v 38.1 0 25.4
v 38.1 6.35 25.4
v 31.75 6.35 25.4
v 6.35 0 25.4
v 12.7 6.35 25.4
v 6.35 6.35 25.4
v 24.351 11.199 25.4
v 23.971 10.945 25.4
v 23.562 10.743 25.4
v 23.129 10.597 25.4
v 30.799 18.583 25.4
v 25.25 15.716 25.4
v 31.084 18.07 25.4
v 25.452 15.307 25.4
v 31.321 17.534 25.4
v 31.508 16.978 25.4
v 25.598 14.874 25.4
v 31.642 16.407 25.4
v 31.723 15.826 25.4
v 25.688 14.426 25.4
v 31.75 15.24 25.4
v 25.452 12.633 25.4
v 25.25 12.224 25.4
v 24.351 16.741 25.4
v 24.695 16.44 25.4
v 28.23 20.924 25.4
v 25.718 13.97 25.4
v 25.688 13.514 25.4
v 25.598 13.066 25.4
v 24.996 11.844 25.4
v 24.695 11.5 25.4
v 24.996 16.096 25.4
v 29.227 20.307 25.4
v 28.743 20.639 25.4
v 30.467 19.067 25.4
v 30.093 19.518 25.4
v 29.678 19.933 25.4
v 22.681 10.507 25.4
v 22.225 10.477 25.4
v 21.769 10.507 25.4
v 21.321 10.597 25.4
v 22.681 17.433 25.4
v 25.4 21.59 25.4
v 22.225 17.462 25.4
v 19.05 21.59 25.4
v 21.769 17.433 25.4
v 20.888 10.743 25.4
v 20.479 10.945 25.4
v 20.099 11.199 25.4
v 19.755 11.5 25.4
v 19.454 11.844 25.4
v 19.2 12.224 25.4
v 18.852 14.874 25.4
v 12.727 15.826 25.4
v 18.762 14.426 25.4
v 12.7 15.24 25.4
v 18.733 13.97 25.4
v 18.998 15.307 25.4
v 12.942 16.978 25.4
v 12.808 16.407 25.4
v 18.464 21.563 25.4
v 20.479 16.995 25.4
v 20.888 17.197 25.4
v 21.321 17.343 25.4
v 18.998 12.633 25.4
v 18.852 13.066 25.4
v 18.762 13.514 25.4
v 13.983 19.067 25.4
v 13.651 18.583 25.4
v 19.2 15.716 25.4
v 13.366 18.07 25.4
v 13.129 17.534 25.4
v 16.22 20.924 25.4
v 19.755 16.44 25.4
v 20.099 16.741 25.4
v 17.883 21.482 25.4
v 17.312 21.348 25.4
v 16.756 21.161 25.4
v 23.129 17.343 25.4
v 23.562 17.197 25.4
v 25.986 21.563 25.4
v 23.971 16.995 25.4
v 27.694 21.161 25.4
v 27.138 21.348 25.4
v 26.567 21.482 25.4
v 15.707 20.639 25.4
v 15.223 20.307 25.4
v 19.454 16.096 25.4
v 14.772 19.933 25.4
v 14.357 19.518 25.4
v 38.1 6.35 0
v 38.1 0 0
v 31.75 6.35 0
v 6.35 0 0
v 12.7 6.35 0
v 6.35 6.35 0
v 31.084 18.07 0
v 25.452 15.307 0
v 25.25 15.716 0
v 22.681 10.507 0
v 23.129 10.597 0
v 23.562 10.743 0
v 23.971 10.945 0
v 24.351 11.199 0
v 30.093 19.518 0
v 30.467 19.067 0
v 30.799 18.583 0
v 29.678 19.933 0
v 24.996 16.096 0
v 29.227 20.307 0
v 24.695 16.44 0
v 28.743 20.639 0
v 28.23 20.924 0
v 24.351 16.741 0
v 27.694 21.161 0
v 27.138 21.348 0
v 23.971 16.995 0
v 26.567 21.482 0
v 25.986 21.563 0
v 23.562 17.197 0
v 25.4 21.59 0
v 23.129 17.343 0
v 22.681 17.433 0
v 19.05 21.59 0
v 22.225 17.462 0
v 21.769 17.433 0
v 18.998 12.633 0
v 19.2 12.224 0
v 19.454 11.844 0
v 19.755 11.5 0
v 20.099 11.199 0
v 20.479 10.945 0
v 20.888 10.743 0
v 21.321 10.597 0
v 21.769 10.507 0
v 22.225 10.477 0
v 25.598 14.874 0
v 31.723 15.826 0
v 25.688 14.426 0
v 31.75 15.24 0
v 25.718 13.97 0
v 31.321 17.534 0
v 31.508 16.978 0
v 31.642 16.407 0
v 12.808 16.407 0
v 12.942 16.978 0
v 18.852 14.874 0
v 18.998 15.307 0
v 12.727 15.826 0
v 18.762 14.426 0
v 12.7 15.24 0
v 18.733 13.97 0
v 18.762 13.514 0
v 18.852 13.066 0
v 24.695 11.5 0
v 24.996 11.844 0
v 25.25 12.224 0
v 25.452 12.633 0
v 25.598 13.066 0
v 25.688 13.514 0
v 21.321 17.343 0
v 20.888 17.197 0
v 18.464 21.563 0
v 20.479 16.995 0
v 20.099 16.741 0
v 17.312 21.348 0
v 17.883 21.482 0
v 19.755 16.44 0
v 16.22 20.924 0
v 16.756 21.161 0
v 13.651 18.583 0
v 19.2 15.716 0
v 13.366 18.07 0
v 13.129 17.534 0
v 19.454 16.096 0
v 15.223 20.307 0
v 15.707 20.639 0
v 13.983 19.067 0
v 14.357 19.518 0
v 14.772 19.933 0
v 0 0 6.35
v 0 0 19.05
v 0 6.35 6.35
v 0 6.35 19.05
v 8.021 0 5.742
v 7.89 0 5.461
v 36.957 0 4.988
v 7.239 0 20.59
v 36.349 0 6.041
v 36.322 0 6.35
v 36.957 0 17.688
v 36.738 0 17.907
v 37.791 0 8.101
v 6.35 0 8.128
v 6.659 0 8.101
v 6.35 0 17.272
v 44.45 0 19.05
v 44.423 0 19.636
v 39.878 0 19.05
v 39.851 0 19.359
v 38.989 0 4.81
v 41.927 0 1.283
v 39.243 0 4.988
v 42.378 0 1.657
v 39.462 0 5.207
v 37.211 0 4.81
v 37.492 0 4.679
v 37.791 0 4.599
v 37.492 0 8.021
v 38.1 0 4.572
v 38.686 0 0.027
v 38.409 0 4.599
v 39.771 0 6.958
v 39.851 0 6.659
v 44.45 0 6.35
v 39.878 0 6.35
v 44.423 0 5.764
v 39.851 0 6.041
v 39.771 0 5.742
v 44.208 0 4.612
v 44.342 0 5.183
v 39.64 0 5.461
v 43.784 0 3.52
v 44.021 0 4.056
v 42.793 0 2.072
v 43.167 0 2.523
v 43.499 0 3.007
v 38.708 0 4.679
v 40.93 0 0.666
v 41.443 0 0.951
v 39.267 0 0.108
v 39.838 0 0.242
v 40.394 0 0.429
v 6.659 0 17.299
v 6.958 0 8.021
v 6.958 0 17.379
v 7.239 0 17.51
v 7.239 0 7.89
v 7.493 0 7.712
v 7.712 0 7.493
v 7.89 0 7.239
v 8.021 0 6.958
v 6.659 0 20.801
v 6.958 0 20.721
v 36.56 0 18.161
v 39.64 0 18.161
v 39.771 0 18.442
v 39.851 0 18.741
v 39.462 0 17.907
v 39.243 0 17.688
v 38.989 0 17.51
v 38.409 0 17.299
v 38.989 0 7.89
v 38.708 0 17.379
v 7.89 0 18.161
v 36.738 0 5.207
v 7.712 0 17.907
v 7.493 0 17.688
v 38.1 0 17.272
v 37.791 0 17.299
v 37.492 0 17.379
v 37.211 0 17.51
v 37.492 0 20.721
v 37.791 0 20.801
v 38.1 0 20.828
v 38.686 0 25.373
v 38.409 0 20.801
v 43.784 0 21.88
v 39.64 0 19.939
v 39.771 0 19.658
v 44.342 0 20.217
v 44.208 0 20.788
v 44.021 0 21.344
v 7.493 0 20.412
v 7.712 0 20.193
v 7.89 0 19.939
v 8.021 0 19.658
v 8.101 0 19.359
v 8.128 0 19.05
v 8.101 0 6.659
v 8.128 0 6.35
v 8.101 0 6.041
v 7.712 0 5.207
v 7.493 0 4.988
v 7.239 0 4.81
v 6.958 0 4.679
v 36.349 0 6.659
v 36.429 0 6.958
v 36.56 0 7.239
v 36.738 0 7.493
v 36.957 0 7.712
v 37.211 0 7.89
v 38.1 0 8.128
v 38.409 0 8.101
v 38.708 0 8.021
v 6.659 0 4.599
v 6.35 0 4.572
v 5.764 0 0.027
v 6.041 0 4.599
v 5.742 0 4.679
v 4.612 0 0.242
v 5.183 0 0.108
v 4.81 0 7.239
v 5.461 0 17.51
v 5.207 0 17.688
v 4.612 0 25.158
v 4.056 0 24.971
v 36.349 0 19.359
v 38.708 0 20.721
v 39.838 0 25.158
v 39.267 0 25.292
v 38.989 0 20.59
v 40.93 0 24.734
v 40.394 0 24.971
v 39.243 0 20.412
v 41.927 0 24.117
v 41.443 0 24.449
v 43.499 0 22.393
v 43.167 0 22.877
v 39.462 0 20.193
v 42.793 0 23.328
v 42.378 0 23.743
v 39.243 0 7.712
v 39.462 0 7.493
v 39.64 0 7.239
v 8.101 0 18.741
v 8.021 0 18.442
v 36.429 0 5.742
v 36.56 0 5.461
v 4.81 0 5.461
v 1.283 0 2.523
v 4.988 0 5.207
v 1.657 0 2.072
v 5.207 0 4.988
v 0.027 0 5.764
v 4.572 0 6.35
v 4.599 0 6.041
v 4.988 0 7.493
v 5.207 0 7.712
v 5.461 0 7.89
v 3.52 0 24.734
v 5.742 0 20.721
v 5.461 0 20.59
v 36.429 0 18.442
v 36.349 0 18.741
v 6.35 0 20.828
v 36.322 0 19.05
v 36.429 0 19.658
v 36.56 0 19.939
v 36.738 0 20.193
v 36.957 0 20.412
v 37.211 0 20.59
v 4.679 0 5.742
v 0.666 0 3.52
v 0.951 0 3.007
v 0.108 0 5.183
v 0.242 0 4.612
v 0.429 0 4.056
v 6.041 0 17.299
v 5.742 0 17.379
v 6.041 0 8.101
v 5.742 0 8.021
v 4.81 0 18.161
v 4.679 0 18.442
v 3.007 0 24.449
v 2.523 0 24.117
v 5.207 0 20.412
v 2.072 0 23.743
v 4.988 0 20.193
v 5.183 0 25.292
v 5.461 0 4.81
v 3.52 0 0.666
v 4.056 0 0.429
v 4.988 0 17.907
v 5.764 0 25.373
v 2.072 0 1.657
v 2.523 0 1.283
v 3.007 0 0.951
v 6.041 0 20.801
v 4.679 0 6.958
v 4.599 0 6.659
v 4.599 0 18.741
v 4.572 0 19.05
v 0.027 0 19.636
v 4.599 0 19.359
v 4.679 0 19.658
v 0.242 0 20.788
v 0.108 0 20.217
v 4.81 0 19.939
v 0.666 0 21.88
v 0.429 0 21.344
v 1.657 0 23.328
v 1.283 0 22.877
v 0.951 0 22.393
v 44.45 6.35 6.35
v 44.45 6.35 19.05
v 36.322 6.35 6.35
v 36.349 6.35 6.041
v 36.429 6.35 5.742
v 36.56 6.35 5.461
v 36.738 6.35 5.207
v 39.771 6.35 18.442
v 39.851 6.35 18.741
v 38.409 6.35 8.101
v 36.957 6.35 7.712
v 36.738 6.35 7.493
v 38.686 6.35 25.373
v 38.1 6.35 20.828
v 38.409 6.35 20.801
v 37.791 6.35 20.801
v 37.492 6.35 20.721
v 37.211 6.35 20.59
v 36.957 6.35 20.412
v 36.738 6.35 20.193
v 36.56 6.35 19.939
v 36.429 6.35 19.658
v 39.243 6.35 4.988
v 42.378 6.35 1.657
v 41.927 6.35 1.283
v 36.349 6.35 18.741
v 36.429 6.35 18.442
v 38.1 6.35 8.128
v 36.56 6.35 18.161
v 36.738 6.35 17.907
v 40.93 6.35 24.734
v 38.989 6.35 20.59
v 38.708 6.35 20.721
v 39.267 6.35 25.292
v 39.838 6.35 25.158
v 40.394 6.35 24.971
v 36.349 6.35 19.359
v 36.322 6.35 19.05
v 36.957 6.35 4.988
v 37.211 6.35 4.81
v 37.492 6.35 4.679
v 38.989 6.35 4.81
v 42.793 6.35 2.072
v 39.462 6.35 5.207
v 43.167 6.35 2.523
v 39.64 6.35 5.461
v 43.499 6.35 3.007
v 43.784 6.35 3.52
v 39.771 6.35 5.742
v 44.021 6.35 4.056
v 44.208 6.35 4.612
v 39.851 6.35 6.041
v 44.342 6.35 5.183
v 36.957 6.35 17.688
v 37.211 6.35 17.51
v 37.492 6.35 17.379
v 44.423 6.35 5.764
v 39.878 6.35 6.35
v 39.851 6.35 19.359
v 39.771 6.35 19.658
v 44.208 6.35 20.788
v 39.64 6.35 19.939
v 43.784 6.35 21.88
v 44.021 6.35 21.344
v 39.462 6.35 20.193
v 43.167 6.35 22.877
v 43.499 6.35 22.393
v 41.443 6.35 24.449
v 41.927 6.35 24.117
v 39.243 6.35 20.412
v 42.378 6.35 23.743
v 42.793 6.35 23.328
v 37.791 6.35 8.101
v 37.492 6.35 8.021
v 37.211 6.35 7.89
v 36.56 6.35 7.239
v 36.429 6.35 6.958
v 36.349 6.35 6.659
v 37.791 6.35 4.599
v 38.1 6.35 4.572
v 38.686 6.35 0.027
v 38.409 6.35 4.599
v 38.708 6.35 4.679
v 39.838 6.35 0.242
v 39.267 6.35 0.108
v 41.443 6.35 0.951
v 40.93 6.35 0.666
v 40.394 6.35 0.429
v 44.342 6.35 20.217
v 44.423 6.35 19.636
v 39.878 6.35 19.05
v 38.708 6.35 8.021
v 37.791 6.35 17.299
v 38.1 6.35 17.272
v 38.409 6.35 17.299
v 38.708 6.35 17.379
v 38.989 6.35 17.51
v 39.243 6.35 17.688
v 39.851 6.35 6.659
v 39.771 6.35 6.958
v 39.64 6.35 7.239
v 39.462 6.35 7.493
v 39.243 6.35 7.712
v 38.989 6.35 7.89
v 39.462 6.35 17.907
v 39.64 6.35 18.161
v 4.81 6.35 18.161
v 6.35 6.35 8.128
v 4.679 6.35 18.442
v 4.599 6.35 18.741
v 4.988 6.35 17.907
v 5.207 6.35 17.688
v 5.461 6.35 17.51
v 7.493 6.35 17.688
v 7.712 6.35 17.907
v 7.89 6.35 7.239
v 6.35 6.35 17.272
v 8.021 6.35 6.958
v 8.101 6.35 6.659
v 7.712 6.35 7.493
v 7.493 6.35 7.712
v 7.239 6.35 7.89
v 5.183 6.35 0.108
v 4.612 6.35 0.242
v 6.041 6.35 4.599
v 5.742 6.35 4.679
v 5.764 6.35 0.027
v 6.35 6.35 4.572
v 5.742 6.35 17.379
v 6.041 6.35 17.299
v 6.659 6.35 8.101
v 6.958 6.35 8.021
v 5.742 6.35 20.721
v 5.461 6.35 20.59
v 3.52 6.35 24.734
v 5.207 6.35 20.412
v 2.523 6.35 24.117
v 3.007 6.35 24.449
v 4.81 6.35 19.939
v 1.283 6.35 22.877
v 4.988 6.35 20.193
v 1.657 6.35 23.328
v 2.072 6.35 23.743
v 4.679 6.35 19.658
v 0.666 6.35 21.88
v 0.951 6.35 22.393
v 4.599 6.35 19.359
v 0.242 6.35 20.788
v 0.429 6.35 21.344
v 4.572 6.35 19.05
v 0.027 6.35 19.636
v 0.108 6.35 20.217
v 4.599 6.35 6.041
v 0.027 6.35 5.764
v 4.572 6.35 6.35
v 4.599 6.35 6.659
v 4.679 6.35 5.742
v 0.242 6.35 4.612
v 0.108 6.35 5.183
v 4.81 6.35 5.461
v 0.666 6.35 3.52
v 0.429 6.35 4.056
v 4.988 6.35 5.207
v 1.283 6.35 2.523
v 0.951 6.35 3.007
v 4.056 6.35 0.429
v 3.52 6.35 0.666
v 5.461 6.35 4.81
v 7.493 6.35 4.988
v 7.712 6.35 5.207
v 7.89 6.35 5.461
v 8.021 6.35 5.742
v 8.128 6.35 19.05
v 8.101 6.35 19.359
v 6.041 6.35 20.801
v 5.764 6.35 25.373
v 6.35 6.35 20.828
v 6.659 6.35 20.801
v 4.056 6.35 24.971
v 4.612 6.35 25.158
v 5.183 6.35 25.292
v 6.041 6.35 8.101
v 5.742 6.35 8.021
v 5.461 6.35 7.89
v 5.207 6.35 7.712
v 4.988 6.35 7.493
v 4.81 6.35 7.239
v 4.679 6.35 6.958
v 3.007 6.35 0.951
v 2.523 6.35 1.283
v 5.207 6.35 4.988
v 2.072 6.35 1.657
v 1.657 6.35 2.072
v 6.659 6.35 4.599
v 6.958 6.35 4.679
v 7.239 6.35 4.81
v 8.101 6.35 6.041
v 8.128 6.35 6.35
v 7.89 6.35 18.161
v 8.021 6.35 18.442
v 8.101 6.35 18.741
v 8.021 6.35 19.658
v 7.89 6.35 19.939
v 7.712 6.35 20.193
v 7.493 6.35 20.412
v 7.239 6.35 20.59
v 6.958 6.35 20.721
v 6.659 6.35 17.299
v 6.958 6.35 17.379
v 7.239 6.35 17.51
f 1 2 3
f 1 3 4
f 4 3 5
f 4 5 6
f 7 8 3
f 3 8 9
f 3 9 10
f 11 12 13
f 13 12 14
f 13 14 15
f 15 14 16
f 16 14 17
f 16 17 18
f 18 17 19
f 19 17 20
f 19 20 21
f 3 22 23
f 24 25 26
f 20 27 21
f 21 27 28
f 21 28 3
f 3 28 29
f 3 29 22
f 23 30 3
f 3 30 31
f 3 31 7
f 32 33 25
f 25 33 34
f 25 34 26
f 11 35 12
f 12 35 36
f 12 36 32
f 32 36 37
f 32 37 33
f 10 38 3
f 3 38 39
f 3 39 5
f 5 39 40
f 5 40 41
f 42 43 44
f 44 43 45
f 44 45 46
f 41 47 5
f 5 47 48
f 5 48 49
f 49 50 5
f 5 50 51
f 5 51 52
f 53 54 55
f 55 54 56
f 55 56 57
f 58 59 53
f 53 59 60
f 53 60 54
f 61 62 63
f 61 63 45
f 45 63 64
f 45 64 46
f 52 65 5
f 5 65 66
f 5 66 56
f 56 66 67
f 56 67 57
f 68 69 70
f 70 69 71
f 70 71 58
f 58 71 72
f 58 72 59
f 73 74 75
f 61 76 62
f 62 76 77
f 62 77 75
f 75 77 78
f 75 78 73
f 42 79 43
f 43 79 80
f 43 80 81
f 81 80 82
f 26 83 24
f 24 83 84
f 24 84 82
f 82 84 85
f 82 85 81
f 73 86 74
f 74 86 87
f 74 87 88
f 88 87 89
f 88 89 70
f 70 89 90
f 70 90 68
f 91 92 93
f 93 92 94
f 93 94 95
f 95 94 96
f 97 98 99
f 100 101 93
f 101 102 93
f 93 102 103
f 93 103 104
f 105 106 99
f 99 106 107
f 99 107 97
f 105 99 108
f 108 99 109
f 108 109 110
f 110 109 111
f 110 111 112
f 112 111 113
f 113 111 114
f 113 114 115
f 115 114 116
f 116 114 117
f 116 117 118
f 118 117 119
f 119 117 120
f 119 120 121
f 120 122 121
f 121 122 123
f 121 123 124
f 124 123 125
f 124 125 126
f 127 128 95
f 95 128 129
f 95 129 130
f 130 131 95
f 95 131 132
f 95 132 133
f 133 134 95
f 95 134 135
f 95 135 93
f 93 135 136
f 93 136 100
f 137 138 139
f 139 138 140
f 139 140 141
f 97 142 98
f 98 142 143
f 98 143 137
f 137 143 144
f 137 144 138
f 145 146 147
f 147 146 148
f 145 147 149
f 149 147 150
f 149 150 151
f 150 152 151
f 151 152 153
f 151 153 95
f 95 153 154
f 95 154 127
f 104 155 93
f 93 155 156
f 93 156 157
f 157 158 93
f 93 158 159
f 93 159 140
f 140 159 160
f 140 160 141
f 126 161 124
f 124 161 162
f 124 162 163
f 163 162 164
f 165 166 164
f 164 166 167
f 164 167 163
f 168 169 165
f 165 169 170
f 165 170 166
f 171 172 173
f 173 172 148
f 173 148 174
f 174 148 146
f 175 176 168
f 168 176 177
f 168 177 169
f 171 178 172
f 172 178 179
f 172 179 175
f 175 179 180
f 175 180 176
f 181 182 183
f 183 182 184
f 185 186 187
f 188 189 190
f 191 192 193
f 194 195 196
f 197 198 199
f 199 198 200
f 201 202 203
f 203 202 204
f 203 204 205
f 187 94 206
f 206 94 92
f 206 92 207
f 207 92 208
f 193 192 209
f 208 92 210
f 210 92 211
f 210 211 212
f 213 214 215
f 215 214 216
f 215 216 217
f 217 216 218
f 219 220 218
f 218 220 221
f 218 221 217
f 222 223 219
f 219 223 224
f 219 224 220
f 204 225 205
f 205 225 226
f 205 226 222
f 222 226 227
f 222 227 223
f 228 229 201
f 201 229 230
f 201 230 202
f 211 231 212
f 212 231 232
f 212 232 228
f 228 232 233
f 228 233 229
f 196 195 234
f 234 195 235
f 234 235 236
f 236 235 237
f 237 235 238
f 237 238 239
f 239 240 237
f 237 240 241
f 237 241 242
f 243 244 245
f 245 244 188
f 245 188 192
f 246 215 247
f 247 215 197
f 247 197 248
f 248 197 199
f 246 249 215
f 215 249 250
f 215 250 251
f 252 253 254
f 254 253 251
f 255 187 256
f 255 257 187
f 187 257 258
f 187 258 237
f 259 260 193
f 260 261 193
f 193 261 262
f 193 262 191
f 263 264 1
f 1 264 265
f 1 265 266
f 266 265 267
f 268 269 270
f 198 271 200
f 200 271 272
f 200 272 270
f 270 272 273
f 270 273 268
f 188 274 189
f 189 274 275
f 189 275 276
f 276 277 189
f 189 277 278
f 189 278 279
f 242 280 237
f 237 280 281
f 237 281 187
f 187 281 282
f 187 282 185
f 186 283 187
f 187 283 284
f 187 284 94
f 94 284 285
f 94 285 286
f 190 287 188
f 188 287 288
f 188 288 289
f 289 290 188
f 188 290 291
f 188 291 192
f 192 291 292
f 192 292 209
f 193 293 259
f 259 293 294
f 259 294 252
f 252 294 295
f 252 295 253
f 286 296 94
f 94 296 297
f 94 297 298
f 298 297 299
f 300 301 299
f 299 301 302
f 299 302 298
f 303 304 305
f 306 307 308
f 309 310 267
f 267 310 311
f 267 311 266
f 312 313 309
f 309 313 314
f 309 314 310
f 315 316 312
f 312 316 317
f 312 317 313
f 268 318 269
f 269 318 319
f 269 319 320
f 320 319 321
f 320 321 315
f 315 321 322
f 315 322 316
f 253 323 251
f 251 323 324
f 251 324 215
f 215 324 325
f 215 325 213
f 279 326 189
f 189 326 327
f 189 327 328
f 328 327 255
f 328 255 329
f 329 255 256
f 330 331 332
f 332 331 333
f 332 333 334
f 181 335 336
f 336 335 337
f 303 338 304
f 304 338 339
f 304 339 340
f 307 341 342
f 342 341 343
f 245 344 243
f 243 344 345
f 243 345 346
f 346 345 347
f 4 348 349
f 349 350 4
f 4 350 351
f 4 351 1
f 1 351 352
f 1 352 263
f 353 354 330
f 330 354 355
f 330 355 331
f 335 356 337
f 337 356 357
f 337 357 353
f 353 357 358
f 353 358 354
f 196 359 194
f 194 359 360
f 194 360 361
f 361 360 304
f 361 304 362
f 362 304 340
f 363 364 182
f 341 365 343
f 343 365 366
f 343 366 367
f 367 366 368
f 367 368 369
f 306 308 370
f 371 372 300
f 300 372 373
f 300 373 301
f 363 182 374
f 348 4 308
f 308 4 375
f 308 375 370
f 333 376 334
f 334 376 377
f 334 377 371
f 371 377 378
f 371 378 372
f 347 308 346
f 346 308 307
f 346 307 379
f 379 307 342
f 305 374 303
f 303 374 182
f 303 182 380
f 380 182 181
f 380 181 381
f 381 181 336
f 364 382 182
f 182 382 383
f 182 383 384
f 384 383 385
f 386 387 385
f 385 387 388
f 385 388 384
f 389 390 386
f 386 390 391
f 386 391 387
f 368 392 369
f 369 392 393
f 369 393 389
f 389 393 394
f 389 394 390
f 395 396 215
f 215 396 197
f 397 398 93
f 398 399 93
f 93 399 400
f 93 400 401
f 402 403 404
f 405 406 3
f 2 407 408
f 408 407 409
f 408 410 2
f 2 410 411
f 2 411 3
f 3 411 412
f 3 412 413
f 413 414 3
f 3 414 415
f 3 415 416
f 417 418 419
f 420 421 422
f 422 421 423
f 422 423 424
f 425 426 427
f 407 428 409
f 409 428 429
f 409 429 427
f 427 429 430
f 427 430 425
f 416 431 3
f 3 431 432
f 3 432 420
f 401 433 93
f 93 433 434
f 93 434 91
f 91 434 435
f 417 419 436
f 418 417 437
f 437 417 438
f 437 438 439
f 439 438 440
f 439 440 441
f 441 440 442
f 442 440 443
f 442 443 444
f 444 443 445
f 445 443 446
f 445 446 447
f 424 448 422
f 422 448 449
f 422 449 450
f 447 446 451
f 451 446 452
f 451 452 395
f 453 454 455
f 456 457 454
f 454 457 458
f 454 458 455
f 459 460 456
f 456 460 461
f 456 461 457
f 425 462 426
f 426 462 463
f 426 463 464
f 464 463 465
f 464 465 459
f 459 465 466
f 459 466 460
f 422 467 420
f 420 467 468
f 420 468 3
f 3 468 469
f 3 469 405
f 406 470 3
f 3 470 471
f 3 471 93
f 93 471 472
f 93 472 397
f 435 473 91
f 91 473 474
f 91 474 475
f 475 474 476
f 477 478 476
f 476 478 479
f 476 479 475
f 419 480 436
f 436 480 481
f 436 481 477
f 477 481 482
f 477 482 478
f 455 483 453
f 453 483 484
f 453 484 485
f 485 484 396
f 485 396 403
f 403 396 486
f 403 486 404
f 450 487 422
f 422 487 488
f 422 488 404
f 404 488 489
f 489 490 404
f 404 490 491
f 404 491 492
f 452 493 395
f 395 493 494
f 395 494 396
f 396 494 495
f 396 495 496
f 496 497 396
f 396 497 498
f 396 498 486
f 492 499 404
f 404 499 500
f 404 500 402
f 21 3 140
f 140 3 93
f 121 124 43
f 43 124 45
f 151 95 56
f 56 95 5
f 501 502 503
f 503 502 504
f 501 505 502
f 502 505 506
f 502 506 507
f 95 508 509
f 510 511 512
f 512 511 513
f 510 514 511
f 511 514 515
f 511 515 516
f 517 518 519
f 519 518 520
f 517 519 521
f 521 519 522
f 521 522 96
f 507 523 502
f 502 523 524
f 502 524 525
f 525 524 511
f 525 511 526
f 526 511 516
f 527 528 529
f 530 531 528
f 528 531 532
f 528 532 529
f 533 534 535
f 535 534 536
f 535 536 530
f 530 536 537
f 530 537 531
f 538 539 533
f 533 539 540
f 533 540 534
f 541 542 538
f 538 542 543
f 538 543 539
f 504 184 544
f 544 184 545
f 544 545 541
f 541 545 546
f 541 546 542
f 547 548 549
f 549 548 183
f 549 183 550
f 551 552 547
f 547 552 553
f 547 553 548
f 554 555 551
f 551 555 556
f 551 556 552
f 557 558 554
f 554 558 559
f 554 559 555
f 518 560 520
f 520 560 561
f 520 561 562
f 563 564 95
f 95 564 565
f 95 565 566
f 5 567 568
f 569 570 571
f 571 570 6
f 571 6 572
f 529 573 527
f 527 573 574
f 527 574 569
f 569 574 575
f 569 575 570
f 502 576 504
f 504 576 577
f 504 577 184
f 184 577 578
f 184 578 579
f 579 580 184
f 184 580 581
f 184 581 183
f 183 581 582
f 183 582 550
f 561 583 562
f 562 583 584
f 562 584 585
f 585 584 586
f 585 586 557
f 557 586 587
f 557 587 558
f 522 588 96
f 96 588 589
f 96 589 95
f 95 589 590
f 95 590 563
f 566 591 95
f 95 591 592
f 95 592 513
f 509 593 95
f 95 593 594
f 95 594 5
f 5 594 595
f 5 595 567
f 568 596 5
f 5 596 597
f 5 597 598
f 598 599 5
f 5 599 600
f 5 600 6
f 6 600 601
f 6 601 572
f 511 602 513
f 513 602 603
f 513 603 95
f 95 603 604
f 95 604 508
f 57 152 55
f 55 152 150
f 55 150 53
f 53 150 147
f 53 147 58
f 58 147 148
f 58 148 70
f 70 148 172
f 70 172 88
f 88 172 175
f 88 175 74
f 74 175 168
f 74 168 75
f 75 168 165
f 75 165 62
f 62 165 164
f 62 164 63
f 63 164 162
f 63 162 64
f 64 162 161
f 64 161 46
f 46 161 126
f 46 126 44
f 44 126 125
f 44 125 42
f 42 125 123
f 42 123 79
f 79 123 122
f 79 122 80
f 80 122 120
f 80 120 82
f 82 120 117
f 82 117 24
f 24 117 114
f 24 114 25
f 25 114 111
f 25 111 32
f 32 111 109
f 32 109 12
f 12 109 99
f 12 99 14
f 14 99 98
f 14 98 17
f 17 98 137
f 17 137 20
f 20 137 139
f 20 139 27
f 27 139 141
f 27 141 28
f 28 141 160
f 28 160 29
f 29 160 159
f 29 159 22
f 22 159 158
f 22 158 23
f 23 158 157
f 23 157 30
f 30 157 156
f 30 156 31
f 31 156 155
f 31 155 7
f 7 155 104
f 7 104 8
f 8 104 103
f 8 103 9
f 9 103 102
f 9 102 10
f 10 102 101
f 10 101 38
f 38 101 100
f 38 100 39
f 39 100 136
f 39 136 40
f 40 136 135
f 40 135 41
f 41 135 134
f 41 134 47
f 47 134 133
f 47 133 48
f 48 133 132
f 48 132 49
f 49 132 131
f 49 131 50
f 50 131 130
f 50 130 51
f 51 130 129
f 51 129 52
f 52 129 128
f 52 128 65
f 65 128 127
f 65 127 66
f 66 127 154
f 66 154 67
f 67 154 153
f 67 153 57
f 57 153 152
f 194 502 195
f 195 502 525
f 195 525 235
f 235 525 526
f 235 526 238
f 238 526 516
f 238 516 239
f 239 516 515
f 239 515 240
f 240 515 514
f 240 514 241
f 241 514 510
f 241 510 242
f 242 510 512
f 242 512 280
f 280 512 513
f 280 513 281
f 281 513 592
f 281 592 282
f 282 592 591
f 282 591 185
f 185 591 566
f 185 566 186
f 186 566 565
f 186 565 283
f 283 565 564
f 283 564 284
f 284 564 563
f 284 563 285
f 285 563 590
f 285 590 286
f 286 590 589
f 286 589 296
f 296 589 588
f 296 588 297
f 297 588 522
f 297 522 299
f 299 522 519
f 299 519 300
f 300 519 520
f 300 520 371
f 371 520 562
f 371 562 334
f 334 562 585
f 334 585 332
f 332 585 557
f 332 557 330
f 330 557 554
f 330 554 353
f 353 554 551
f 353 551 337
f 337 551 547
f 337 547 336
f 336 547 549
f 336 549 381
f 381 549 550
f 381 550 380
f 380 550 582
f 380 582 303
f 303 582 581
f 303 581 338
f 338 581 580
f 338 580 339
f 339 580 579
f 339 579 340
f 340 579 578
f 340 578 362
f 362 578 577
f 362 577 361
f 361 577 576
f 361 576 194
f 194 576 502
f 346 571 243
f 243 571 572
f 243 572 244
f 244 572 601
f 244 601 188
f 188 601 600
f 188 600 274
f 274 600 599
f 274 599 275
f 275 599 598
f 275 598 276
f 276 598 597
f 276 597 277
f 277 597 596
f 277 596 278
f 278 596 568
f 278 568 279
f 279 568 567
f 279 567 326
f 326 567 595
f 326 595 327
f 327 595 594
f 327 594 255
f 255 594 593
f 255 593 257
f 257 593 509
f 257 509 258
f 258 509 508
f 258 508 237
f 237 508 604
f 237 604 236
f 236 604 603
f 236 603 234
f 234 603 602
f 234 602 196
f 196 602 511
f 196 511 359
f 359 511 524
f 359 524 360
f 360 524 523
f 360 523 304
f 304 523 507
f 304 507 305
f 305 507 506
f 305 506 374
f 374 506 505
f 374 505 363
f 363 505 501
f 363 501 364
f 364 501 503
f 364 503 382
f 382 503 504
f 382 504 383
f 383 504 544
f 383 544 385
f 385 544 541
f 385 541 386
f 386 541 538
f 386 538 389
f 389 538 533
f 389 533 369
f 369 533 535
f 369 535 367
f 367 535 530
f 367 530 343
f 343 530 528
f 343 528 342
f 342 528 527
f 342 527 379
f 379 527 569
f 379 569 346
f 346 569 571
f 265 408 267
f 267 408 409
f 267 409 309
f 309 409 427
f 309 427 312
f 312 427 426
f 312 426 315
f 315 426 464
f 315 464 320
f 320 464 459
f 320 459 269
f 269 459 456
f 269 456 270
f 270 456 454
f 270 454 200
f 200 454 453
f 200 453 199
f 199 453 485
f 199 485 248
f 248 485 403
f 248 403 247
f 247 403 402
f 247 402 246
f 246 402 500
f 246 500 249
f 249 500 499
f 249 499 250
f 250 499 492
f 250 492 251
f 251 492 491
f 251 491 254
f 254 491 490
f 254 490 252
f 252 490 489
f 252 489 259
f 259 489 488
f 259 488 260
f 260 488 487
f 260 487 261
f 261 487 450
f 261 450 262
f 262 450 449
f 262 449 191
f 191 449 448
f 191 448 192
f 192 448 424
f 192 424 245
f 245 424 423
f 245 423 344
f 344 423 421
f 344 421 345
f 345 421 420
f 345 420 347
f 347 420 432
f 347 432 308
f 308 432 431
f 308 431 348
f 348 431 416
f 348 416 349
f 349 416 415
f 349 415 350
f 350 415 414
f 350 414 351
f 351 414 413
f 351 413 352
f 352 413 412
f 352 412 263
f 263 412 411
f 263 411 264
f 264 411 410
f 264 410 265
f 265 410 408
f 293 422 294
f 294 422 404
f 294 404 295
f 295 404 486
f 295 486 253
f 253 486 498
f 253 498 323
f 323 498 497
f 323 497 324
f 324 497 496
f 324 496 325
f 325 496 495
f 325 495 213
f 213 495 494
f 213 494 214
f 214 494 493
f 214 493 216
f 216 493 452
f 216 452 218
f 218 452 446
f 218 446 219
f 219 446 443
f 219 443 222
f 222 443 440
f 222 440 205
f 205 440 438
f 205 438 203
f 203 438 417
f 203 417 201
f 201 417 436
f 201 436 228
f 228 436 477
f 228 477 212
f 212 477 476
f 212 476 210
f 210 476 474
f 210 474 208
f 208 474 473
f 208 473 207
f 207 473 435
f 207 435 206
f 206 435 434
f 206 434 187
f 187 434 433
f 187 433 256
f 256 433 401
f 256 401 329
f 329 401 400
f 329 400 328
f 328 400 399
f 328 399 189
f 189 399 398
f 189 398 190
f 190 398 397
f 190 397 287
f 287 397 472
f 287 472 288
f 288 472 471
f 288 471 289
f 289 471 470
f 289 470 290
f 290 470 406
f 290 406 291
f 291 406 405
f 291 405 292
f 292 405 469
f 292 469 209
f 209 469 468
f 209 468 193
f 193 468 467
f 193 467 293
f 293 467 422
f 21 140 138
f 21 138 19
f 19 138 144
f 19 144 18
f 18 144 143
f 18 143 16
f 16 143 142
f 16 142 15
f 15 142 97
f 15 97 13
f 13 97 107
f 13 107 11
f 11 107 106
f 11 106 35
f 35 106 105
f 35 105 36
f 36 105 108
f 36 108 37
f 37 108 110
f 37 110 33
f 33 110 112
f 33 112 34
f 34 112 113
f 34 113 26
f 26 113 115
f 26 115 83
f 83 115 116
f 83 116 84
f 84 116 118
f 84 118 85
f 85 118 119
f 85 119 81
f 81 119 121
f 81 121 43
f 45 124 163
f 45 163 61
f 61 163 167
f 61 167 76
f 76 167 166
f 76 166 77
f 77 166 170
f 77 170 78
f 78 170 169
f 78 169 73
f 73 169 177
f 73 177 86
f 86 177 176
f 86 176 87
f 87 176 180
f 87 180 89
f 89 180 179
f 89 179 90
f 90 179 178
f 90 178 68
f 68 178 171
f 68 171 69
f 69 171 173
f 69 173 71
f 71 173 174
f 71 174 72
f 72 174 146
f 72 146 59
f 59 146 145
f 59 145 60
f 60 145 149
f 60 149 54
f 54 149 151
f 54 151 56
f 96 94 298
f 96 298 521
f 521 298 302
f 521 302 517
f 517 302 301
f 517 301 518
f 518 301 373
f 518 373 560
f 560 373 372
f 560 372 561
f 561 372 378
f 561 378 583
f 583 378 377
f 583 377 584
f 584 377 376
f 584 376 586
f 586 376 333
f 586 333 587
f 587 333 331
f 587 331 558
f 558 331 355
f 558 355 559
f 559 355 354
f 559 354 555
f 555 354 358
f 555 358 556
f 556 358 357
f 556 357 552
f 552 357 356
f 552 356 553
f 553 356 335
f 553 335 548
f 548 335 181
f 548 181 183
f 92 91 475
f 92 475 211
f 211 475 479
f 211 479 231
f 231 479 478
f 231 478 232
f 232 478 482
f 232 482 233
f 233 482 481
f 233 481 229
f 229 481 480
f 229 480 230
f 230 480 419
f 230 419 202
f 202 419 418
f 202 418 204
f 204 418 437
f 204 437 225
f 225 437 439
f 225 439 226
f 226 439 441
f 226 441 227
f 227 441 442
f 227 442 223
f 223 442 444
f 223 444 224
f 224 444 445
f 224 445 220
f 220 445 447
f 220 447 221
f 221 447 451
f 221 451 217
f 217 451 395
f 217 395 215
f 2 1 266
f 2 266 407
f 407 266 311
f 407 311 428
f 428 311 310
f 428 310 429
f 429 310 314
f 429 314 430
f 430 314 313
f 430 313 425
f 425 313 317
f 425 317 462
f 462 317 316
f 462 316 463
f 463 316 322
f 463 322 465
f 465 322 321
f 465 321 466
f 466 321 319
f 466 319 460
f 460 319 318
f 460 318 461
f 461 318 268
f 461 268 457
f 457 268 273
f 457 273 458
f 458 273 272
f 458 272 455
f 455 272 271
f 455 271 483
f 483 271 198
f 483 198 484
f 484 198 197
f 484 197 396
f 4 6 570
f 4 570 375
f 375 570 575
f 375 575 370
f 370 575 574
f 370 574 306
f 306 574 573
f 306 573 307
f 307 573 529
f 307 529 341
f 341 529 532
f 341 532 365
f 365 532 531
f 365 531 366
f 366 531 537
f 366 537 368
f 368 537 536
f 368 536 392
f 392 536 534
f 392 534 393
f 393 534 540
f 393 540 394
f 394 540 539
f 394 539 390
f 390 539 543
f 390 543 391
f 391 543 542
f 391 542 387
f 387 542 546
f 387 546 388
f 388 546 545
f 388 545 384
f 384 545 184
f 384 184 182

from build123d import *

# Parameters (mm, degrees)
SKETCH1_R           = 3.4925
BOSS_EXTRUDE1_DEPTH = 25.4
SKETCH2_R           = 1.778
CUT_EXTRUDE1_DEPTH  = 54.415541746
FILLET2_R           = 6.35
FILLET1_R           = 6.35


with BuildPart() as part:
    # Sketch1 → Boss-Extrude1 (new body)
    with BuildSketch(Plane.XY):
        Polygon((0, 0), (44.45, 0), (44.45, 6.35), (31.75, 6.35), (31.75, 21.59), (12.7, 21.59), (12.7, 6.35), (0, 6.35), align=None)
        with Locations((22.225, 13.97)):
            Circle(SKETCH1_R, mode=Mode.SUBTRACT)
    extrude(amount=BOSS_EXTRUDE1_DEPTH)

    # Sketch2 → Cut-Extrude1 (cut, through all)
    with BuildSketch(Plane(origin=(0, 6.35, 0), x_dir=(1, 0, 0), z_dir=(0, 1, 0))):
        with Locations(Location((6.35, -6.35, 0), (0, 0, 270))):
            Circle(SKETCH2_R)
        with Locations(Location((6.35, -19.05, 0), (0, 0, 270))):
            Circle(SKETCH2_R)
        with Locations(Location((38.1, -6.35, 0), (0, 0, 270))):
            Circle(SKETCH2_R)
        with Locations(Location((38.1, -19.05, 0), (0, 0, 270))):
            Circle(SKETCH2_R)
    extrude(amount=-CUT_EXTRUDE1_DEPTH, mode=Mode.SUBTRACT)

    # Fillet2
    fillet2_edges = [part.edges().sort_by_distance(p)[0] for p in [
        (12.7, 21.59, 12.7),
        (31.75, 21.59, 12.7),
    ]]
    fillet(fillet2_edges, radius=FILLET2_R)

    # Fillet1
    fillet1_edges = [part.edges().sort_by_distance(p)[0] for p in [
        (44.45, 3.175, 0),
        (0, 3.175, 0),
        (44.45, 3.175, 25.4),
        (0, 3.175, 25.4),
    ]]
    fillet(fillet1_edges, radius=FILLET1_R)


solid = part.part
